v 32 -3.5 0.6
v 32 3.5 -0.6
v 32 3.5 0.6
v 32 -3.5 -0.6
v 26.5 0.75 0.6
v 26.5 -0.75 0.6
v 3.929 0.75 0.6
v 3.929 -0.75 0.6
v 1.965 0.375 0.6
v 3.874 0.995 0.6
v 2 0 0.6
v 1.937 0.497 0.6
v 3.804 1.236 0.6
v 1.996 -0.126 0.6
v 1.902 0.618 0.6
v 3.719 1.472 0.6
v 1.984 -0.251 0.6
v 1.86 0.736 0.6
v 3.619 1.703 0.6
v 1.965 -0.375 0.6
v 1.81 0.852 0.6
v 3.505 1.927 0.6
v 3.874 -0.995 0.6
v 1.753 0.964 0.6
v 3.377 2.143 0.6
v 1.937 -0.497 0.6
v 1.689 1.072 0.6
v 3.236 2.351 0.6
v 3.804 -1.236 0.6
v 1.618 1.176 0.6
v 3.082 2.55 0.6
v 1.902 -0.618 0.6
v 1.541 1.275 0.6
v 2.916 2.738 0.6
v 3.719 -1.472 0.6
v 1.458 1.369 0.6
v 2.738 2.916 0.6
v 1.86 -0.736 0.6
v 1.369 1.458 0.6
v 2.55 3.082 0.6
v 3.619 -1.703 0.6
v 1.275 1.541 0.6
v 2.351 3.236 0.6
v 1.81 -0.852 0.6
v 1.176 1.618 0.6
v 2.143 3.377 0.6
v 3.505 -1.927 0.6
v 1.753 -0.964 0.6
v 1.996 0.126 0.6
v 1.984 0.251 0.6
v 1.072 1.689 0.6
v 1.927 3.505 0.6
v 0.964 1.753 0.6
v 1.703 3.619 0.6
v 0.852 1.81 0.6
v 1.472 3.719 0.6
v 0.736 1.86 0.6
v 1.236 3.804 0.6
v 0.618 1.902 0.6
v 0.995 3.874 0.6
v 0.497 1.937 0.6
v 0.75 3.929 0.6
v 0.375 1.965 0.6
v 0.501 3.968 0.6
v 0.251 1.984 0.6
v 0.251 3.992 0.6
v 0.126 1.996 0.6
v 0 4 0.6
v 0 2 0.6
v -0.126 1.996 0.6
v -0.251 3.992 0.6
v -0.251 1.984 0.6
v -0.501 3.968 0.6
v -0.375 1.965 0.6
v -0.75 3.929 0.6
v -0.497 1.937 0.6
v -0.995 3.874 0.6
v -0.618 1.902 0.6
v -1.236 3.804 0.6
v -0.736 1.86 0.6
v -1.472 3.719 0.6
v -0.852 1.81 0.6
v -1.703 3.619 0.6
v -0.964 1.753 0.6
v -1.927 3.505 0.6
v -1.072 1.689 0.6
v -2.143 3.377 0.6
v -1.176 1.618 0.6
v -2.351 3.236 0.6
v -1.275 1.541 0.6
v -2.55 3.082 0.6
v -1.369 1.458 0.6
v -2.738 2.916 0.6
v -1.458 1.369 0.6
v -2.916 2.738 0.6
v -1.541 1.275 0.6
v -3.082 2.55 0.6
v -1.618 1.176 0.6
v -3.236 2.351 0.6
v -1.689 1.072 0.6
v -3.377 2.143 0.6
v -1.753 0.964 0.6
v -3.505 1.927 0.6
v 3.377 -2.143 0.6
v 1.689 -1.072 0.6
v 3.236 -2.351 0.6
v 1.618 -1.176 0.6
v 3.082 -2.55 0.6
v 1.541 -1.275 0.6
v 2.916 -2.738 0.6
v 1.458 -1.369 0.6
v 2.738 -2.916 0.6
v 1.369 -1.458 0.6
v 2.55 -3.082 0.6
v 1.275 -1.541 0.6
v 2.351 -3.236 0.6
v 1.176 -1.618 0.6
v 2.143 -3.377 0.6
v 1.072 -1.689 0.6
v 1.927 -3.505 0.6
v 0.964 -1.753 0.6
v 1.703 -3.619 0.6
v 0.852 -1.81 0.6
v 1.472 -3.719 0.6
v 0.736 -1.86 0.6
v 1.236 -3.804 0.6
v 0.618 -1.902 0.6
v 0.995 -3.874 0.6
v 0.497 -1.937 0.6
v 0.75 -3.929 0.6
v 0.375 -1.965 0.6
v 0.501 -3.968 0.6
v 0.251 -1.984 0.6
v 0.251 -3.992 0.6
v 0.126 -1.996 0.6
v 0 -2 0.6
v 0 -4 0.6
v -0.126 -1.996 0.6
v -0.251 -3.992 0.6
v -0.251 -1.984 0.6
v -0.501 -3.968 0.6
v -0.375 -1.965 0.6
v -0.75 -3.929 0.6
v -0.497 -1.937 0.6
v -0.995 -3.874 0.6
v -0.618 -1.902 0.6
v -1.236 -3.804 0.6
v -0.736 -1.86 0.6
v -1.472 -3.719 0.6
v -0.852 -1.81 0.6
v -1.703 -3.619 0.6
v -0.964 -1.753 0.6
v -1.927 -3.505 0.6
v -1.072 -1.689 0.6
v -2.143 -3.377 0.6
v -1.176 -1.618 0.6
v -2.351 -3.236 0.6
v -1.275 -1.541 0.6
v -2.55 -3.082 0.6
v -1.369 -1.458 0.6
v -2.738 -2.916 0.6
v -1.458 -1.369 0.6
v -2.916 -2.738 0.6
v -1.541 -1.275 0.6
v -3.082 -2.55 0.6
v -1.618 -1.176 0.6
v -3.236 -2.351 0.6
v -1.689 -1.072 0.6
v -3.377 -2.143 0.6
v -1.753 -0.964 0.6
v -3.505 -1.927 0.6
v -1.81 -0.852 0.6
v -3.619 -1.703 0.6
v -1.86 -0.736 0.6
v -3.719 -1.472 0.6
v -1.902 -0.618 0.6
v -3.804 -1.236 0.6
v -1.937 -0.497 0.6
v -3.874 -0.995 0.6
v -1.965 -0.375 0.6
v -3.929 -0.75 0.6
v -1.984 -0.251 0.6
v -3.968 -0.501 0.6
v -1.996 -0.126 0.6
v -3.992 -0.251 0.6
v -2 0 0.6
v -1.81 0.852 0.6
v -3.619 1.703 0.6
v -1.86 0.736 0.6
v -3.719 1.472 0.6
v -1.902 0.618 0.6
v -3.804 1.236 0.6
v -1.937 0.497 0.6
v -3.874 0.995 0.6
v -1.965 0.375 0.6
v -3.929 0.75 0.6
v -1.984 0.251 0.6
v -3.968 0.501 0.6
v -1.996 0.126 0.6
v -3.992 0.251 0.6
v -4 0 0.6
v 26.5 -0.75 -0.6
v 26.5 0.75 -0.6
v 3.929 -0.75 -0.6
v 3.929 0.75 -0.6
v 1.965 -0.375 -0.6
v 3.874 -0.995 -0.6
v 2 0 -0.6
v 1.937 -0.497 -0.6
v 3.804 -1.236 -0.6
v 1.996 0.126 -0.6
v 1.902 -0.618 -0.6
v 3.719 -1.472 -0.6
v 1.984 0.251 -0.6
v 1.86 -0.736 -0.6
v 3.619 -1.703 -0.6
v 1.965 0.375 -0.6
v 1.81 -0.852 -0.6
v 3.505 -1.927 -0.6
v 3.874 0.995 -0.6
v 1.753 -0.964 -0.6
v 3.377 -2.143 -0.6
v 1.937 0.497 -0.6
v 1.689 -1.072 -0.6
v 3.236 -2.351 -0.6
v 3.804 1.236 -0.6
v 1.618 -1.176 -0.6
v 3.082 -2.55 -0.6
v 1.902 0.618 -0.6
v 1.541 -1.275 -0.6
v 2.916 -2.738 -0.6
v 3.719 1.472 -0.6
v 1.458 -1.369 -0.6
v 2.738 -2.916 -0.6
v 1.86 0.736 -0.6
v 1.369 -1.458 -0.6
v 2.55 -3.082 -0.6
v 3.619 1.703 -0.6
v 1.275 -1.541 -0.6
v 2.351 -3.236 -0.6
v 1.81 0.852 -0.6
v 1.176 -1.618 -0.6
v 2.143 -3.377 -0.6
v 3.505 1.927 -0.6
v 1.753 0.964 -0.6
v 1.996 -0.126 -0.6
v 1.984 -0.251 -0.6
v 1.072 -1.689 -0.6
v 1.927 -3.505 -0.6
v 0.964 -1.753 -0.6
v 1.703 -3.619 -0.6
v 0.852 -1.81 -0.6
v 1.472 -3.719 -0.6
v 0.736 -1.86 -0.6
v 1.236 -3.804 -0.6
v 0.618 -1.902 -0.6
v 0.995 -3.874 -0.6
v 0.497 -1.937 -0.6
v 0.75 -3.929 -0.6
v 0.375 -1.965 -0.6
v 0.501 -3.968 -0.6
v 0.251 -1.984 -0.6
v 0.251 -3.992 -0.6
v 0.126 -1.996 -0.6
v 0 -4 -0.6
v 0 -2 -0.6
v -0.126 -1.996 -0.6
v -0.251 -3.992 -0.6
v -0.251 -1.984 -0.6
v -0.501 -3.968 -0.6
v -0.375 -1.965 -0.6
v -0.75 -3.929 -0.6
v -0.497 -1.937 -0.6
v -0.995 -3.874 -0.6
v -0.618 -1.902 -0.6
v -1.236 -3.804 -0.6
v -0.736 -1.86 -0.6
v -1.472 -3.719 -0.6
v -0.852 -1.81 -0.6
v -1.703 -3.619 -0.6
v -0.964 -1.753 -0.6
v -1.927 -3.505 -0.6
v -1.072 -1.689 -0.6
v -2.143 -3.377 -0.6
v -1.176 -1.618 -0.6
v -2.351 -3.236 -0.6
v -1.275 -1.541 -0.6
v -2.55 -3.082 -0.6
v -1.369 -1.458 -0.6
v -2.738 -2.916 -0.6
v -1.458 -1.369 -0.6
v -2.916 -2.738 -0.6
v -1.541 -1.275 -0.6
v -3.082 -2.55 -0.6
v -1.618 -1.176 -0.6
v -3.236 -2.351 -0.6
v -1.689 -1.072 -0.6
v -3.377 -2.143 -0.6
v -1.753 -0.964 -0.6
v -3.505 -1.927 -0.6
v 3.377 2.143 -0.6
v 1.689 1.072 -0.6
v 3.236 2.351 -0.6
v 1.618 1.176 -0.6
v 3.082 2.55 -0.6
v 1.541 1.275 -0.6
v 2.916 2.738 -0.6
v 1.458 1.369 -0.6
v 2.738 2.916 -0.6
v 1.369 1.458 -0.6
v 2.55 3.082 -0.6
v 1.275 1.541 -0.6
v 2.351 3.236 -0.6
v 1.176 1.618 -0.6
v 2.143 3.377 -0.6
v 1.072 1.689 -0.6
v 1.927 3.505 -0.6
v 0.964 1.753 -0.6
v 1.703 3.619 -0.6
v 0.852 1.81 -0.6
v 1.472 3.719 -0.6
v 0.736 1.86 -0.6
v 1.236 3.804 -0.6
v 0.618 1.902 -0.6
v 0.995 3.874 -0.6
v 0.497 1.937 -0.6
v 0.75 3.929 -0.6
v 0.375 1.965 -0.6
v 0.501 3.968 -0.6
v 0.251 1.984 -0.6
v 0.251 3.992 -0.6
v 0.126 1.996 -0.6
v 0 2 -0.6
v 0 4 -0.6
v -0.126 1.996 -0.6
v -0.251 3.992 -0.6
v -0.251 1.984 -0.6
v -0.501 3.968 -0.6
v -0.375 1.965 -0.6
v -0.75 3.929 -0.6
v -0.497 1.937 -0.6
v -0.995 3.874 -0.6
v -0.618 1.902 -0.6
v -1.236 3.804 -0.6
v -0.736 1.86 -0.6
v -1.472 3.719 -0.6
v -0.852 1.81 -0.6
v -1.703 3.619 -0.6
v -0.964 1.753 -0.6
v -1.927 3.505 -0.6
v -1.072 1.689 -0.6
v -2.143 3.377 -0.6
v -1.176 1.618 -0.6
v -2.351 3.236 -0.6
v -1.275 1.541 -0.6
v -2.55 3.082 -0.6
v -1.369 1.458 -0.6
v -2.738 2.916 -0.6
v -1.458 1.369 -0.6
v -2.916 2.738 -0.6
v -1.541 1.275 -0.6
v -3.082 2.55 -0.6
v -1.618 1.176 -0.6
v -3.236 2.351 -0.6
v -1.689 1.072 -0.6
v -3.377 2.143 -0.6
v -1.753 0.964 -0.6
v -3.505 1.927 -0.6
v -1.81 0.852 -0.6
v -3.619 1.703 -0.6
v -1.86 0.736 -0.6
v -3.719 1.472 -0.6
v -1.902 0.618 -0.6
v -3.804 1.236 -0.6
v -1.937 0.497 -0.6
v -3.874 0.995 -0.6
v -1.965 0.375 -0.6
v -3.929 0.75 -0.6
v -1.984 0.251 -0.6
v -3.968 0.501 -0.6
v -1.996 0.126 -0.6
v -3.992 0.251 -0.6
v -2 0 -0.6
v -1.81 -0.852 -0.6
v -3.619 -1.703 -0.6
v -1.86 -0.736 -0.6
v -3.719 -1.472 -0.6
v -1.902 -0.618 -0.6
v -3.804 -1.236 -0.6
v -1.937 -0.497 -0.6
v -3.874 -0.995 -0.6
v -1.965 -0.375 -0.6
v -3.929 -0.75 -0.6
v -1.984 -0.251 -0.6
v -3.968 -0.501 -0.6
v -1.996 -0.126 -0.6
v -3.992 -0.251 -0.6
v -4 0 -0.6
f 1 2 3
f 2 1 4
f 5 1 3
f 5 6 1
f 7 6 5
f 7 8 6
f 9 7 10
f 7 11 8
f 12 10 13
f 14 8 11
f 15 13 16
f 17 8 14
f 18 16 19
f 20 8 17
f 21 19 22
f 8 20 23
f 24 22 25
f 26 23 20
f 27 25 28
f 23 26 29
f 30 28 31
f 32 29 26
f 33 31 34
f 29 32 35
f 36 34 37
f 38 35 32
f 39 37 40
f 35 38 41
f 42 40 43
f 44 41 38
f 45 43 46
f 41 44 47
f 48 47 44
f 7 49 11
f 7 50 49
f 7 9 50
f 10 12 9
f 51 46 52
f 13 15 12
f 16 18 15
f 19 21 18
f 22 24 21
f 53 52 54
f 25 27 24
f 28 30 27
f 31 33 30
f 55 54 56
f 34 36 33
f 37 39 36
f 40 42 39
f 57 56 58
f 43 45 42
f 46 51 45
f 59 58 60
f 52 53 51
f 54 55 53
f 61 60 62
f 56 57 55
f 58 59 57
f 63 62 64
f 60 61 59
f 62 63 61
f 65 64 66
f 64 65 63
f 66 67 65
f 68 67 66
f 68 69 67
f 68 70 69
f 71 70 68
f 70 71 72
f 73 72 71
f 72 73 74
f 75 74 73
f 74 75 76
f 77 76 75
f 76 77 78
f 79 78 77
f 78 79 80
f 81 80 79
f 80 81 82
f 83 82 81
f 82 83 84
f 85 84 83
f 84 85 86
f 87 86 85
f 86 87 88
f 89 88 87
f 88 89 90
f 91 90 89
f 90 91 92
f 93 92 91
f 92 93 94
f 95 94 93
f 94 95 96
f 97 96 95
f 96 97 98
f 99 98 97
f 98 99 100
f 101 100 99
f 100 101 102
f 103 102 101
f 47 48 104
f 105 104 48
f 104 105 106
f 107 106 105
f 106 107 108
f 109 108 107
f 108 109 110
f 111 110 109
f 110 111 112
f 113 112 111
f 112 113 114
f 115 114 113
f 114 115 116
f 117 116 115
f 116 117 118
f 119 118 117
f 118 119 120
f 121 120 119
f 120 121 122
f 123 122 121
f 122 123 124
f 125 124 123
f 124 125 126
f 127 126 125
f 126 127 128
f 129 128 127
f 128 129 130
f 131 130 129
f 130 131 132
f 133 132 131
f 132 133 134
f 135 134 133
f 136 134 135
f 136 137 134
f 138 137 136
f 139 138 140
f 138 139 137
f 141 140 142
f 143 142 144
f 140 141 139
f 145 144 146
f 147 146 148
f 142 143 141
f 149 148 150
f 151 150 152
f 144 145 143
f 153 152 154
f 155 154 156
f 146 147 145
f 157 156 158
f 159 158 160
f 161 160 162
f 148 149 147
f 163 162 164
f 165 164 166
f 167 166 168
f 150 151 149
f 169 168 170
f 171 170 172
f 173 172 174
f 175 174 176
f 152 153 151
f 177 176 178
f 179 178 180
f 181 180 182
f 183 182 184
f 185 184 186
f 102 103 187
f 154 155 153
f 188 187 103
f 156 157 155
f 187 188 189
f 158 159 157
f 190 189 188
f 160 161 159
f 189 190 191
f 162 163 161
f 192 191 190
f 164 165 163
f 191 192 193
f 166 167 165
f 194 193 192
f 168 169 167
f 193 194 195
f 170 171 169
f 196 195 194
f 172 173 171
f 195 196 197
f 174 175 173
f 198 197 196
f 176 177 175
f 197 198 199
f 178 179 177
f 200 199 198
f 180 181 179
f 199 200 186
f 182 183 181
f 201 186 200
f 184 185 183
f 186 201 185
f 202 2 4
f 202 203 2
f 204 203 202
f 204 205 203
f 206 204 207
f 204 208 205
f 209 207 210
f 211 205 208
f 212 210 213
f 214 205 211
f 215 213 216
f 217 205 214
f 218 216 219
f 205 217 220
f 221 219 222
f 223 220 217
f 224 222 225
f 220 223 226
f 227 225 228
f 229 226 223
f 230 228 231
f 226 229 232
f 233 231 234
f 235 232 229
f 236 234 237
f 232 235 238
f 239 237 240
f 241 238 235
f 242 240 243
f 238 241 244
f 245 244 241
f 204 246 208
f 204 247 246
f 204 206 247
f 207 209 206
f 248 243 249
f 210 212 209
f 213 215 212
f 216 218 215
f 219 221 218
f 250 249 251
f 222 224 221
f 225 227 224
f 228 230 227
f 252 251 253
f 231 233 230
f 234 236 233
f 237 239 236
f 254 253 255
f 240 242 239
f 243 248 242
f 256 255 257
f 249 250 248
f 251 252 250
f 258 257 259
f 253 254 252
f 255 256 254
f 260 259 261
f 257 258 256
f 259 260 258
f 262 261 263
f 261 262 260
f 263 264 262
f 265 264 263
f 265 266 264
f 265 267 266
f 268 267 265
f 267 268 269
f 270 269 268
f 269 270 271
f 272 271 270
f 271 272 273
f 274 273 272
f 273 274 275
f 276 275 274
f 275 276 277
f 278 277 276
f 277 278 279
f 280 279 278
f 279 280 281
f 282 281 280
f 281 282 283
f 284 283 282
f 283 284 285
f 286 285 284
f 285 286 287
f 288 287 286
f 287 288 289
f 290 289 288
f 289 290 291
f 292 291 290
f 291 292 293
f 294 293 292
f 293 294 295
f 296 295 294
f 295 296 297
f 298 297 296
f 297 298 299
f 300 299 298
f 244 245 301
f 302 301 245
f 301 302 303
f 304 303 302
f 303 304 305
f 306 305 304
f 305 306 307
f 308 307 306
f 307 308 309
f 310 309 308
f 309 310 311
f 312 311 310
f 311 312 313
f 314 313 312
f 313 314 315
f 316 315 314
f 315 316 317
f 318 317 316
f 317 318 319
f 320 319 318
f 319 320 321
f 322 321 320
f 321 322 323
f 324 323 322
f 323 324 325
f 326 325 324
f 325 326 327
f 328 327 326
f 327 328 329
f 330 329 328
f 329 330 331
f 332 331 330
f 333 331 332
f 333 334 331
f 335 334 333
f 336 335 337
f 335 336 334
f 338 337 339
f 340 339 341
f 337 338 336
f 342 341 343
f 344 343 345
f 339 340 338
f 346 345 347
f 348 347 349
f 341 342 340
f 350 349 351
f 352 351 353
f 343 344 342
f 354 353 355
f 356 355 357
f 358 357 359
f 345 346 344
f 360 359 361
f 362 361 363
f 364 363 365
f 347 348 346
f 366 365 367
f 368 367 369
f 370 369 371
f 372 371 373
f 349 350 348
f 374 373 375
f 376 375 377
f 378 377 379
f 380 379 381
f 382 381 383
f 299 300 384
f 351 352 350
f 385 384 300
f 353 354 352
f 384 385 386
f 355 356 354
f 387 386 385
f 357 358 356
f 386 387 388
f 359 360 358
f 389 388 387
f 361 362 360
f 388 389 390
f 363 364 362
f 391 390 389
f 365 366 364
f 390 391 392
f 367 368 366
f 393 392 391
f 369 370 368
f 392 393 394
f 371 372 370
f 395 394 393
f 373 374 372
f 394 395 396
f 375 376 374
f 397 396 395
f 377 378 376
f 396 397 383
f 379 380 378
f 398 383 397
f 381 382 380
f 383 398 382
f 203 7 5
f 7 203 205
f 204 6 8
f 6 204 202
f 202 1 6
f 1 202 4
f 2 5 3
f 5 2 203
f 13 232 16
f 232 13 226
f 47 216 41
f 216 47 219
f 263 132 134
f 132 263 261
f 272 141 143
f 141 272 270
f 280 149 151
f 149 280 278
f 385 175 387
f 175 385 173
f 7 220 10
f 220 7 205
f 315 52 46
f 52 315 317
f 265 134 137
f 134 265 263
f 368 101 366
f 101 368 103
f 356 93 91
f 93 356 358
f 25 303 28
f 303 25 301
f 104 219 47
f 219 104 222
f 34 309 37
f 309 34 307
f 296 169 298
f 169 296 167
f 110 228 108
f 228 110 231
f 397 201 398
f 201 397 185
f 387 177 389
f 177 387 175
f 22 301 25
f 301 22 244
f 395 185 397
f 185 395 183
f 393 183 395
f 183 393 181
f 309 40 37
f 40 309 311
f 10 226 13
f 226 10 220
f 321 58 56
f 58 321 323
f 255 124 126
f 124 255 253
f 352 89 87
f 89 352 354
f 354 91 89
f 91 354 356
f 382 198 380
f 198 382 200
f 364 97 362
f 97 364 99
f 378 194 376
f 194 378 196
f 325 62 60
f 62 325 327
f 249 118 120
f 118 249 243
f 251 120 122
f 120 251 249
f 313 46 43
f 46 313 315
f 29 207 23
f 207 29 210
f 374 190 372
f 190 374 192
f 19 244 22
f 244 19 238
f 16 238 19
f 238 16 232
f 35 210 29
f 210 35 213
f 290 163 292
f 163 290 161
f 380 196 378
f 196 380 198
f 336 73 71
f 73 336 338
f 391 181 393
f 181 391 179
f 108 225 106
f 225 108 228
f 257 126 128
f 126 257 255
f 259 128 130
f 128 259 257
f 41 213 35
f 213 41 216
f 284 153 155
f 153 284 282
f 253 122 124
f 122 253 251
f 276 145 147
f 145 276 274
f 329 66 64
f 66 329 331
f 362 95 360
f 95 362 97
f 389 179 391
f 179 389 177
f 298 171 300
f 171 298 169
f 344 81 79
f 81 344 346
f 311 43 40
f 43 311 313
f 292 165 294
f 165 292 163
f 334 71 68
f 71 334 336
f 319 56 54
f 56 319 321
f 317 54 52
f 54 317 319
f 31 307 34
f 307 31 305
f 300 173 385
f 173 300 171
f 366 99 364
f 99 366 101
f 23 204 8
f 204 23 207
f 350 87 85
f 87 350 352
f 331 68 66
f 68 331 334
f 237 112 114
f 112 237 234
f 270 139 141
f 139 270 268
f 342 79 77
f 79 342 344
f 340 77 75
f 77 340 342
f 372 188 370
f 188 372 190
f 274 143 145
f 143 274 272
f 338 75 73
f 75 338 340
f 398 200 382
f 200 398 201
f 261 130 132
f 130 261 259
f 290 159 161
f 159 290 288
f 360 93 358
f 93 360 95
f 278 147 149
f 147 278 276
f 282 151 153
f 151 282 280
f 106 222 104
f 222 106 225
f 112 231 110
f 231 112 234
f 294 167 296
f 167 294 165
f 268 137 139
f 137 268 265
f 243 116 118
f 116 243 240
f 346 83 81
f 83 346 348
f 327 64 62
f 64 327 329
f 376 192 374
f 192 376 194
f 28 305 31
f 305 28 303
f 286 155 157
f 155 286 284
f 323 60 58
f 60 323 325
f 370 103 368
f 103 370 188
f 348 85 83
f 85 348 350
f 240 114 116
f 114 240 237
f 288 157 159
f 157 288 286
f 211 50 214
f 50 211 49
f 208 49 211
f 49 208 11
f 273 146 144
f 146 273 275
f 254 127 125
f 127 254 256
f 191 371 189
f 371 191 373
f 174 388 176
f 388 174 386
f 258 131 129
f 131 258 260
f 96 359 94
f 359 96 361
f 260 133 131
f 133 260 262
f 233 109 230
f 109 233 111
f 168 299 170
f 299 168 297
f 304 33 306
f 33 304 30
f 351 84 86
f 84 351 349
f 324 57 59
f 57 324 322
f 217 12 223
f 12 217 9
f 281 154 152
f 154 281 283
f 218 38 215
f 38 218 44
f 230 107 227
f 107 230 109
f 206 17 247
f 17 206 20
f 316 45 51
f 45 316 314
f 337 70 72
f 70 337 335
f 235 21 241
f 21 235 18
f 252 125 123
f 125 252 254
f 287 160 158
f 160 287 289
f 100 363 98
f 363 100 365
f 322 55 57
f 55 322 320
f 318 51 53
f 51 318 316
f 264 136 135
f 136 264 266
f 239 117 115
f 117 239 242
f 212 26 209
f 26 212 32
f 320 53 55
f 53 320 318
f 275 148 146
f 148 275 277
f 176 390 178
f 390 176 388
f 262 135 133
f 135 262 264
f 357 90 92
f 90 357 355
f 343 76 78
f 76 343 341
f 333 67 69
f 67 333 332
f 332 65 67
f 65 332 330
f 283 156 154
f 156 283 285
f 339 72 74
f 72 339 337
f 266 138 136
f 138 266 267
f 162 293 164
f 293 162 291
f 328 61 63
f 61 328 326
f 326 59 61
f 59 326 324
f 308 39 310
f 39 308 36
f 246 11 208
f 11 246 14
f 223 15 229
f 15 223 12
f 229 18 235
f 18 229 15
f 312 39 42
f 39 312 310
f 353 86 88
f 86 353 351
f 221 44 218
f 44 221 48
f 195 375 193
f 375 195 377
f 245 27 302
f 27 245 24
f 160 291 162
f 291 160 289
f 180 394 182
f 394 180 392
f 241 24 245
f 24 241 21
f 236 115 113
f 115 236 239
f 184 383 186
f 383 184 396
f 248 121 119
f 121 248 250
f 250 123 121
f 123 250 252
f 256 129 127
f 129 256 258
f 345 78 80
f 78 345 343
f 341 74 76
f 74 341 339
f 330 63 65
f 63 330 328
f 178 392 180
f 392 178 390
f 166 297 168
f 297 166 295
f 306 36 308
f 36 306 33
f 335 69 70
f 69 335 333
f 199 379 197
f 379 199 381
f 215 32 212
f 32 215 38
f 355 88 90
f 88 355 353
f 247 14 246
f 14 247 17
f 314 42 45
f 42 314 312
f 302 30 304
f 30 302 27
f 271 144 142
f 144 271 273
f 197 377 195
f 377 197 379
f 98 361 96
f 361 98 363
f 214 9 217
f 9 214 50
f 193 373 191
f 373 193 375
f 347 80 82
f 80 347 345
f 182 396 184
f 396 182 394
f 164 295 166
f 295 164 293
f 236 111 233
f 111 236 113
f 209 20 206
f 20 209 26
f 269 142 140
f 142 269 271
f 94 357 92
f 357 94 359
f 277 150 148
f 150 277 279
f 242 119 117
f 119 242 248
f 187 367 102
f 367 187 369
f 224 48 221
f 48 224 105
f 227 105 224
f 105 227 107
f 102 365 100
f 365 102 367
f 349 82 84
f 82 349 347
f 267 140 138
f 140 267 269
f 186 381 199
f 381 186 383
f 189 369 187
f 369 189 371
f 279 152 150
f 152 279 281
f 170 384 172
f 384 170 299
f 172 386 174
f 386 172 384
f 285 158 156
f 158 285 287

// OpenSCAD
$fn = 100;

length    = 32;
shaft_w   = 1.5;
triangle_w = 7;
triangle_l = 7;
thickness = 1.2;

difference() {
    union() {

        // Long, thin 10,000-ft hand
        translate([length / 2, 0, 0])
            cube([length, shaft_w, thickness], center=true);

        // Inward-pointing triangular tip
        //
        // Point of triangle faces toward the center (left)
        translate([length, 0, 0])
            linear_extrude(height=thickness, center=true)
                polygon([
                    [-triangle_l, 0],
                    [0, -triangle_w/2],
                    [0,  triangle_w/2]
                ]);

        // Hub
        cylinder(d=8, h=thickness, center=true);
    }

    // Shaft hole
    cylinder(d=4, h=5, center=true);
}
